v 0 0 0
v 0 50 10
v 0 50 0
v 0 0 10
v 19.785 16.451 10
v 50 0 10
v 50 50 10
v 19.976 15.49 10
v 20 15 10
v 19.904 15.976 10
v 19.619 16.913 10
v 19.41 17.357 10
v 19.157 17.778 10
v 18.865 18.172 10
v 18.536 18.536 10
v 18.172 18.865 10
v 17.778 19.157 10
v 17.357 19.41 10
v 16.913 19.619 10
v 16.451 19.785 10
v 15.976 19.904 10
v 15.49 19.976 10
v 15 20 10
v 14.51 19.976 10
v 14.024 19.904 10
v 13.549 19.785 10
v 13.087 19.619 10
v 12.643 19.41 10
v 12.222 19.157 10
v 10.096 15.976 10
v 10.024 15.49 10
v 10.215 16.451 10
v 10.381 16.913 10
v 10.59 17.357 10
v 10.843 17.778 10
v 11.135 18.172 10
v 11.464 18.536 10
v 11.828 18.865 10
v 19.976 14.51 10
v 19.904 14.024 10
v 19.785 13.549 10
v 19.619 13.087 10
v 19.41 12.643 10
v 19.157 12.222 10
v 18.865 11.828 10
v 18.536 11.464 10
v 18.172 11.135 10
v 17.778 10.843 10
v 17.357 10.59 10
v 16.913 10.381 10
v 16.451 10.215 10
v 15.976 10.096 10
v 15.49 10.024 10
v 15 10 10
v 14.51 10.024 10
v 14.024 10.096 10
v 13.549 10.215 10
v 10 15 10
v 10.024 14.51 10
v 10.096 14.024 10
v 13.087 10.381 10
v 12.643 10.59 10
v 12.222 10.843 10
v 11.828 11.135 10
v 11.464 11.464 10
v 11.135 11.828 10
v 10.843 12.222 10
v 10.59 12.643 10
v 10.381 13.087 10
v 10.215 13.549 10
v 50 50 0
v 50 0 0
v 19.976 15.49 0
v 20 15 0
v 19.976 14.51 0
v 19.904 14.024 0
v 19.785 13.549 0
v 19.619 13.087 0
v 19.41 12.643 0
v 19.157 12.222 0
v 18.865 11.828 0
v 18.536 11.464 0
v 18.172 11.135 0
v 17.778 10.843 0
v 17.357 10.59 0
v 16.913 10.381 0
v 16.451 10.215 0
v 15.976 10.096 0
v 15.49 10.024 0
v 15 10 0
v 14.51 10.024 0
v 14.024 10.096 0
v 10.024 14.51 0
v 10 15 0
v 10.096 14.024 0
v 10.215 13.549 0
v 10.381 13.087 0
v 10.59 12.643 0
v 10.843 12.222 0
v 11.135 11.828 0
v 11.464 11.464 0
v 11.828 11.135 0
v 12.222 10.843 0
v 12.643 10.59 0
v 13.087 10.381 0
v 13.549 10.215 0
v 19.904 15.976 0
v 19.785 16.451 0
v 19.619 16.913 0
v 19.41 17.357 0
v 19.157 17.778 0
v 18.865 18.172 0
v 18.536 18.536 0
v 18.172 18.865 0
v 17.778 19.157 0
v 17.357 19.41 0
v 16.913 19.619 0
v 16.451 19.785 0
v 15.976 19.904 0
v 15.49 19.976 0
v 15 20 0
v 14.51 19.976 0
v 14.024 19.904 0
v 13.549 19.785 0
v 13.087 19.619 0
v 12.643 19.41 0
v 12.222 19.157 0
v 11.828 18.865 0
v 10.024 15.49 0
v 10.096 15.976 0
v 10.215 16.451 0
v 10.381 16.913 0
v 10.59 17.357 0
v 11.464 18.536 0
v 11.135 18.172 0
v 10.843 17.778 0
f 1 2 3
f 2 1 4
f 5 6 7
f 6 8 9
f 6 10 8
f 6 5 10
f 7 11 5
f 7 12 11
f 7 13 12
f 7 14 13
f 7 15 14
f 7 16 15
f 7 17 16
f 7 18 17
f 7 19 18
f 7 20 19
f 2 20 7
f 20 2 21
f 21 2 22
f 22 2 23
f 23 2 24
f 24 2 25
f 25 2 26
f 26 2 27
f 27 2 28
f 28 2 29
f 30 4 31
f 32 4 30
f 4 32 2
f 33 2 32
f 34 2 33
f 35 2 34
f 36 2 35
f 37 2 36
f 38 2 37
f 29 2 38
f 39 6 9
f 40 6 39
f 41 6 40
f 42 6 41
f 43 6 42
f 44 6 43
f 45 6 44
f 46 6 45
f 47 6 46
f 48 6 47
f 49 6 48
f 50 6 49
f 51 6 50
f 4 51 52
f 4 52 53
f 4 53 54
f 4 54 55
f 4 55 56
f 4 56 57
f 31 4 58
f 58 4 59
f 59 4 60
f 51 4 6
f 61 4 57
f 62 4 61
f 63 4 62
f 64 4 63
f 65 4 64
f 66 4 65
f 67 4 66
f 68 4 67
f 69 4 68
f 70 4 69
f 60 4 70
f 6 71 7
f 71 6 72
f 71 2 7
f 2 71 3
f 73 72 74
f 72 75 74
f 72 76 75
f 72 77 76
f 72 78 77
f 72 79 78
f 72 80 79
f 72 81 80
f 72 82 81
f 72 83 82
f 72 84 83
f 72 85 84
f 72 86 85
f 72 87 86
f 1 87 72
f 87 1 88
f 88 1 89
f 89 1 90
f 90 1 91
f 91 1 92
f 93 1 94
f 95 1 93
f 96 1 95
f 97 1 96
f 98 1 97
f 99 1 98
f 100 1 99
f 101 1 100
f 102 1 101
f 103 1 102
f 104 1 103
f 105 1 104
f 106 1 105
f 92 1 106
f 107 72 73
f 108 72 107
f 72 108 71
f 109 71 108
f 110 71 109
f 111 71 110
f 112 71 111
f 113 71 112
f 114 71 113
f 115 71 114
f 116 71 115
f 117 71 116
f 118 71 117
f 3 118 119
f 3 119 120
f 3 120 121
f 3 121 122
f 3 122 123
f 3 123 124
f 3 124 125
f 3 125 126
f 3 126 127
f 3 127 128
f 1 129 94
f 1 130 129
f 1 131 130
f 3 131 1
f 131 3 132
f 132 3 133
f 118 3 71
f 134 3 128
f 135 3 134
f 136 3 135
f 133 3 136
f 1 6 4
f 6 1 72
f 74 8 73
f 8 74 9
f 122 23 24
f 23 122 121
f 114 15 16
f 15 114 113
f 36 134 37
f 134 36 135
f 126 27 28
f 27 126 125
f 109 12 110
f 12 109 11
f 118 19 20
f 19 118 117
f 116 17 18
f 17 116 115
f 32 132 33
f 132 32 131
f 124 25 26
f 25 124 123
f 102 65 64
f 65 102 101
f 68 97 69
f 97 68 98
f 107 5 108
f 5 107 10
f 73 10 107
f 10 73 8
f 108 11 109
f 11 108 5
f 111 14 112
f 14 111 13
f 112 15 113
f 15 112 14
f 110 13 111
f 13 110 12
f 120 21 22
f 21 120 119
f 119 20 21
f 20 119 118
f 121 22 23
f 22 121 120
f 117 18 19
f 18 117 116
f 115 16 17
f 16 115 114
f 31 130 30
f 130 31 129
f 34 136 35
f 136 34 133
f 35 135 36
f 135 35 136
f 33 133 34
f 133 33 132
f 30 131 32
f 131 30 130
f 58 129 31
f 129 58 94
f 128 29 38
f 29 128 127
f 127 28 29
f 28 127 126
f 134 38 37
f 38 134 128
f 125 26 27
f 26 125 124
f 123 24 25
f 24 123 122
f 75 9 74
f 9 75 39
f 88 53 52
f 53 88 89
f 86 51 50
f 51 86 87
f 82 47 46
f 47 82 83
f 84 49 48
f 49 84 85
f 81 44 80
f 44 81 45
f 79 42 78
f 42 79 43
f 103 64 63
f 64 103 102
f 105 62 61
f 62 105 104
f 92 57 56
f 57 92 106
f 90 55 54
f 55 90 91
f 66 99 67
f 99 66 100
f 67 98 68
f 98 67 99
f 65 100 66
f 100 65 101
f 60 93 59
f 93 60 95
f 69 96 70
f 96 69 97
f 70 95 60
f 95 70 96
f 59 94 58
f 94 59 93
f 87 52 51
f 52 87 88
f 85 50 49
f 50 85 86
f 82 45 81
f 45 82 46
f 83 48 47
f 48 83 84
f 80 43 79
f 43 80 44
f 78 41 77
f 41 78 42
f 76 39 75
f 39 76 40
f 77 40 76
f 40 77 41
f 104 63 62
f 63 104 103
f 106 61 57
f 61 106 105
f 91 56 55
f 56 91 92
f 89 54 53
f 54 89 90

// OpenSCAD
// Faz 2 test modeli — parametrik, tum olculer mm cinsinden.
// KURAL: kullanicinin verdigi olcu degistirilmedi; delik konumu sorularak tamamlandi.

// PARAM: kullanicidan / sorularak tamamlanan olculer
plaka_genislik = 50;    // mm (kullanici: prizma X)
plaka_derinlik = 50;    // mm (kullanici: prizma Y)
plaka_yukseklik = 10;   // mm (kullanici: prizma Z)
delik_cap = 10;         // mm (kullanici: tam delik capi)
delik_x = 15;           // mm (sorularak: delik merkezi X, referans koseden)
delik_y = 15;           // mm (sorularak: delik merkezi Y, referans koseden)

$fn = 64;

difference() {
    // Govde: tablaya oturan en genis yuz altta (Z=0)
    cube([plaka_genislik, plaka_derinlik, plaka_yukseklik]);
    // Tam delik: Z ekseni boyunca, govdeyi iki yonden de tasarak keser
    translate([delik_x, delik_y, -1])
        cylinder(d = delik_cap, h = plaka_yukseklik + 2);
}
